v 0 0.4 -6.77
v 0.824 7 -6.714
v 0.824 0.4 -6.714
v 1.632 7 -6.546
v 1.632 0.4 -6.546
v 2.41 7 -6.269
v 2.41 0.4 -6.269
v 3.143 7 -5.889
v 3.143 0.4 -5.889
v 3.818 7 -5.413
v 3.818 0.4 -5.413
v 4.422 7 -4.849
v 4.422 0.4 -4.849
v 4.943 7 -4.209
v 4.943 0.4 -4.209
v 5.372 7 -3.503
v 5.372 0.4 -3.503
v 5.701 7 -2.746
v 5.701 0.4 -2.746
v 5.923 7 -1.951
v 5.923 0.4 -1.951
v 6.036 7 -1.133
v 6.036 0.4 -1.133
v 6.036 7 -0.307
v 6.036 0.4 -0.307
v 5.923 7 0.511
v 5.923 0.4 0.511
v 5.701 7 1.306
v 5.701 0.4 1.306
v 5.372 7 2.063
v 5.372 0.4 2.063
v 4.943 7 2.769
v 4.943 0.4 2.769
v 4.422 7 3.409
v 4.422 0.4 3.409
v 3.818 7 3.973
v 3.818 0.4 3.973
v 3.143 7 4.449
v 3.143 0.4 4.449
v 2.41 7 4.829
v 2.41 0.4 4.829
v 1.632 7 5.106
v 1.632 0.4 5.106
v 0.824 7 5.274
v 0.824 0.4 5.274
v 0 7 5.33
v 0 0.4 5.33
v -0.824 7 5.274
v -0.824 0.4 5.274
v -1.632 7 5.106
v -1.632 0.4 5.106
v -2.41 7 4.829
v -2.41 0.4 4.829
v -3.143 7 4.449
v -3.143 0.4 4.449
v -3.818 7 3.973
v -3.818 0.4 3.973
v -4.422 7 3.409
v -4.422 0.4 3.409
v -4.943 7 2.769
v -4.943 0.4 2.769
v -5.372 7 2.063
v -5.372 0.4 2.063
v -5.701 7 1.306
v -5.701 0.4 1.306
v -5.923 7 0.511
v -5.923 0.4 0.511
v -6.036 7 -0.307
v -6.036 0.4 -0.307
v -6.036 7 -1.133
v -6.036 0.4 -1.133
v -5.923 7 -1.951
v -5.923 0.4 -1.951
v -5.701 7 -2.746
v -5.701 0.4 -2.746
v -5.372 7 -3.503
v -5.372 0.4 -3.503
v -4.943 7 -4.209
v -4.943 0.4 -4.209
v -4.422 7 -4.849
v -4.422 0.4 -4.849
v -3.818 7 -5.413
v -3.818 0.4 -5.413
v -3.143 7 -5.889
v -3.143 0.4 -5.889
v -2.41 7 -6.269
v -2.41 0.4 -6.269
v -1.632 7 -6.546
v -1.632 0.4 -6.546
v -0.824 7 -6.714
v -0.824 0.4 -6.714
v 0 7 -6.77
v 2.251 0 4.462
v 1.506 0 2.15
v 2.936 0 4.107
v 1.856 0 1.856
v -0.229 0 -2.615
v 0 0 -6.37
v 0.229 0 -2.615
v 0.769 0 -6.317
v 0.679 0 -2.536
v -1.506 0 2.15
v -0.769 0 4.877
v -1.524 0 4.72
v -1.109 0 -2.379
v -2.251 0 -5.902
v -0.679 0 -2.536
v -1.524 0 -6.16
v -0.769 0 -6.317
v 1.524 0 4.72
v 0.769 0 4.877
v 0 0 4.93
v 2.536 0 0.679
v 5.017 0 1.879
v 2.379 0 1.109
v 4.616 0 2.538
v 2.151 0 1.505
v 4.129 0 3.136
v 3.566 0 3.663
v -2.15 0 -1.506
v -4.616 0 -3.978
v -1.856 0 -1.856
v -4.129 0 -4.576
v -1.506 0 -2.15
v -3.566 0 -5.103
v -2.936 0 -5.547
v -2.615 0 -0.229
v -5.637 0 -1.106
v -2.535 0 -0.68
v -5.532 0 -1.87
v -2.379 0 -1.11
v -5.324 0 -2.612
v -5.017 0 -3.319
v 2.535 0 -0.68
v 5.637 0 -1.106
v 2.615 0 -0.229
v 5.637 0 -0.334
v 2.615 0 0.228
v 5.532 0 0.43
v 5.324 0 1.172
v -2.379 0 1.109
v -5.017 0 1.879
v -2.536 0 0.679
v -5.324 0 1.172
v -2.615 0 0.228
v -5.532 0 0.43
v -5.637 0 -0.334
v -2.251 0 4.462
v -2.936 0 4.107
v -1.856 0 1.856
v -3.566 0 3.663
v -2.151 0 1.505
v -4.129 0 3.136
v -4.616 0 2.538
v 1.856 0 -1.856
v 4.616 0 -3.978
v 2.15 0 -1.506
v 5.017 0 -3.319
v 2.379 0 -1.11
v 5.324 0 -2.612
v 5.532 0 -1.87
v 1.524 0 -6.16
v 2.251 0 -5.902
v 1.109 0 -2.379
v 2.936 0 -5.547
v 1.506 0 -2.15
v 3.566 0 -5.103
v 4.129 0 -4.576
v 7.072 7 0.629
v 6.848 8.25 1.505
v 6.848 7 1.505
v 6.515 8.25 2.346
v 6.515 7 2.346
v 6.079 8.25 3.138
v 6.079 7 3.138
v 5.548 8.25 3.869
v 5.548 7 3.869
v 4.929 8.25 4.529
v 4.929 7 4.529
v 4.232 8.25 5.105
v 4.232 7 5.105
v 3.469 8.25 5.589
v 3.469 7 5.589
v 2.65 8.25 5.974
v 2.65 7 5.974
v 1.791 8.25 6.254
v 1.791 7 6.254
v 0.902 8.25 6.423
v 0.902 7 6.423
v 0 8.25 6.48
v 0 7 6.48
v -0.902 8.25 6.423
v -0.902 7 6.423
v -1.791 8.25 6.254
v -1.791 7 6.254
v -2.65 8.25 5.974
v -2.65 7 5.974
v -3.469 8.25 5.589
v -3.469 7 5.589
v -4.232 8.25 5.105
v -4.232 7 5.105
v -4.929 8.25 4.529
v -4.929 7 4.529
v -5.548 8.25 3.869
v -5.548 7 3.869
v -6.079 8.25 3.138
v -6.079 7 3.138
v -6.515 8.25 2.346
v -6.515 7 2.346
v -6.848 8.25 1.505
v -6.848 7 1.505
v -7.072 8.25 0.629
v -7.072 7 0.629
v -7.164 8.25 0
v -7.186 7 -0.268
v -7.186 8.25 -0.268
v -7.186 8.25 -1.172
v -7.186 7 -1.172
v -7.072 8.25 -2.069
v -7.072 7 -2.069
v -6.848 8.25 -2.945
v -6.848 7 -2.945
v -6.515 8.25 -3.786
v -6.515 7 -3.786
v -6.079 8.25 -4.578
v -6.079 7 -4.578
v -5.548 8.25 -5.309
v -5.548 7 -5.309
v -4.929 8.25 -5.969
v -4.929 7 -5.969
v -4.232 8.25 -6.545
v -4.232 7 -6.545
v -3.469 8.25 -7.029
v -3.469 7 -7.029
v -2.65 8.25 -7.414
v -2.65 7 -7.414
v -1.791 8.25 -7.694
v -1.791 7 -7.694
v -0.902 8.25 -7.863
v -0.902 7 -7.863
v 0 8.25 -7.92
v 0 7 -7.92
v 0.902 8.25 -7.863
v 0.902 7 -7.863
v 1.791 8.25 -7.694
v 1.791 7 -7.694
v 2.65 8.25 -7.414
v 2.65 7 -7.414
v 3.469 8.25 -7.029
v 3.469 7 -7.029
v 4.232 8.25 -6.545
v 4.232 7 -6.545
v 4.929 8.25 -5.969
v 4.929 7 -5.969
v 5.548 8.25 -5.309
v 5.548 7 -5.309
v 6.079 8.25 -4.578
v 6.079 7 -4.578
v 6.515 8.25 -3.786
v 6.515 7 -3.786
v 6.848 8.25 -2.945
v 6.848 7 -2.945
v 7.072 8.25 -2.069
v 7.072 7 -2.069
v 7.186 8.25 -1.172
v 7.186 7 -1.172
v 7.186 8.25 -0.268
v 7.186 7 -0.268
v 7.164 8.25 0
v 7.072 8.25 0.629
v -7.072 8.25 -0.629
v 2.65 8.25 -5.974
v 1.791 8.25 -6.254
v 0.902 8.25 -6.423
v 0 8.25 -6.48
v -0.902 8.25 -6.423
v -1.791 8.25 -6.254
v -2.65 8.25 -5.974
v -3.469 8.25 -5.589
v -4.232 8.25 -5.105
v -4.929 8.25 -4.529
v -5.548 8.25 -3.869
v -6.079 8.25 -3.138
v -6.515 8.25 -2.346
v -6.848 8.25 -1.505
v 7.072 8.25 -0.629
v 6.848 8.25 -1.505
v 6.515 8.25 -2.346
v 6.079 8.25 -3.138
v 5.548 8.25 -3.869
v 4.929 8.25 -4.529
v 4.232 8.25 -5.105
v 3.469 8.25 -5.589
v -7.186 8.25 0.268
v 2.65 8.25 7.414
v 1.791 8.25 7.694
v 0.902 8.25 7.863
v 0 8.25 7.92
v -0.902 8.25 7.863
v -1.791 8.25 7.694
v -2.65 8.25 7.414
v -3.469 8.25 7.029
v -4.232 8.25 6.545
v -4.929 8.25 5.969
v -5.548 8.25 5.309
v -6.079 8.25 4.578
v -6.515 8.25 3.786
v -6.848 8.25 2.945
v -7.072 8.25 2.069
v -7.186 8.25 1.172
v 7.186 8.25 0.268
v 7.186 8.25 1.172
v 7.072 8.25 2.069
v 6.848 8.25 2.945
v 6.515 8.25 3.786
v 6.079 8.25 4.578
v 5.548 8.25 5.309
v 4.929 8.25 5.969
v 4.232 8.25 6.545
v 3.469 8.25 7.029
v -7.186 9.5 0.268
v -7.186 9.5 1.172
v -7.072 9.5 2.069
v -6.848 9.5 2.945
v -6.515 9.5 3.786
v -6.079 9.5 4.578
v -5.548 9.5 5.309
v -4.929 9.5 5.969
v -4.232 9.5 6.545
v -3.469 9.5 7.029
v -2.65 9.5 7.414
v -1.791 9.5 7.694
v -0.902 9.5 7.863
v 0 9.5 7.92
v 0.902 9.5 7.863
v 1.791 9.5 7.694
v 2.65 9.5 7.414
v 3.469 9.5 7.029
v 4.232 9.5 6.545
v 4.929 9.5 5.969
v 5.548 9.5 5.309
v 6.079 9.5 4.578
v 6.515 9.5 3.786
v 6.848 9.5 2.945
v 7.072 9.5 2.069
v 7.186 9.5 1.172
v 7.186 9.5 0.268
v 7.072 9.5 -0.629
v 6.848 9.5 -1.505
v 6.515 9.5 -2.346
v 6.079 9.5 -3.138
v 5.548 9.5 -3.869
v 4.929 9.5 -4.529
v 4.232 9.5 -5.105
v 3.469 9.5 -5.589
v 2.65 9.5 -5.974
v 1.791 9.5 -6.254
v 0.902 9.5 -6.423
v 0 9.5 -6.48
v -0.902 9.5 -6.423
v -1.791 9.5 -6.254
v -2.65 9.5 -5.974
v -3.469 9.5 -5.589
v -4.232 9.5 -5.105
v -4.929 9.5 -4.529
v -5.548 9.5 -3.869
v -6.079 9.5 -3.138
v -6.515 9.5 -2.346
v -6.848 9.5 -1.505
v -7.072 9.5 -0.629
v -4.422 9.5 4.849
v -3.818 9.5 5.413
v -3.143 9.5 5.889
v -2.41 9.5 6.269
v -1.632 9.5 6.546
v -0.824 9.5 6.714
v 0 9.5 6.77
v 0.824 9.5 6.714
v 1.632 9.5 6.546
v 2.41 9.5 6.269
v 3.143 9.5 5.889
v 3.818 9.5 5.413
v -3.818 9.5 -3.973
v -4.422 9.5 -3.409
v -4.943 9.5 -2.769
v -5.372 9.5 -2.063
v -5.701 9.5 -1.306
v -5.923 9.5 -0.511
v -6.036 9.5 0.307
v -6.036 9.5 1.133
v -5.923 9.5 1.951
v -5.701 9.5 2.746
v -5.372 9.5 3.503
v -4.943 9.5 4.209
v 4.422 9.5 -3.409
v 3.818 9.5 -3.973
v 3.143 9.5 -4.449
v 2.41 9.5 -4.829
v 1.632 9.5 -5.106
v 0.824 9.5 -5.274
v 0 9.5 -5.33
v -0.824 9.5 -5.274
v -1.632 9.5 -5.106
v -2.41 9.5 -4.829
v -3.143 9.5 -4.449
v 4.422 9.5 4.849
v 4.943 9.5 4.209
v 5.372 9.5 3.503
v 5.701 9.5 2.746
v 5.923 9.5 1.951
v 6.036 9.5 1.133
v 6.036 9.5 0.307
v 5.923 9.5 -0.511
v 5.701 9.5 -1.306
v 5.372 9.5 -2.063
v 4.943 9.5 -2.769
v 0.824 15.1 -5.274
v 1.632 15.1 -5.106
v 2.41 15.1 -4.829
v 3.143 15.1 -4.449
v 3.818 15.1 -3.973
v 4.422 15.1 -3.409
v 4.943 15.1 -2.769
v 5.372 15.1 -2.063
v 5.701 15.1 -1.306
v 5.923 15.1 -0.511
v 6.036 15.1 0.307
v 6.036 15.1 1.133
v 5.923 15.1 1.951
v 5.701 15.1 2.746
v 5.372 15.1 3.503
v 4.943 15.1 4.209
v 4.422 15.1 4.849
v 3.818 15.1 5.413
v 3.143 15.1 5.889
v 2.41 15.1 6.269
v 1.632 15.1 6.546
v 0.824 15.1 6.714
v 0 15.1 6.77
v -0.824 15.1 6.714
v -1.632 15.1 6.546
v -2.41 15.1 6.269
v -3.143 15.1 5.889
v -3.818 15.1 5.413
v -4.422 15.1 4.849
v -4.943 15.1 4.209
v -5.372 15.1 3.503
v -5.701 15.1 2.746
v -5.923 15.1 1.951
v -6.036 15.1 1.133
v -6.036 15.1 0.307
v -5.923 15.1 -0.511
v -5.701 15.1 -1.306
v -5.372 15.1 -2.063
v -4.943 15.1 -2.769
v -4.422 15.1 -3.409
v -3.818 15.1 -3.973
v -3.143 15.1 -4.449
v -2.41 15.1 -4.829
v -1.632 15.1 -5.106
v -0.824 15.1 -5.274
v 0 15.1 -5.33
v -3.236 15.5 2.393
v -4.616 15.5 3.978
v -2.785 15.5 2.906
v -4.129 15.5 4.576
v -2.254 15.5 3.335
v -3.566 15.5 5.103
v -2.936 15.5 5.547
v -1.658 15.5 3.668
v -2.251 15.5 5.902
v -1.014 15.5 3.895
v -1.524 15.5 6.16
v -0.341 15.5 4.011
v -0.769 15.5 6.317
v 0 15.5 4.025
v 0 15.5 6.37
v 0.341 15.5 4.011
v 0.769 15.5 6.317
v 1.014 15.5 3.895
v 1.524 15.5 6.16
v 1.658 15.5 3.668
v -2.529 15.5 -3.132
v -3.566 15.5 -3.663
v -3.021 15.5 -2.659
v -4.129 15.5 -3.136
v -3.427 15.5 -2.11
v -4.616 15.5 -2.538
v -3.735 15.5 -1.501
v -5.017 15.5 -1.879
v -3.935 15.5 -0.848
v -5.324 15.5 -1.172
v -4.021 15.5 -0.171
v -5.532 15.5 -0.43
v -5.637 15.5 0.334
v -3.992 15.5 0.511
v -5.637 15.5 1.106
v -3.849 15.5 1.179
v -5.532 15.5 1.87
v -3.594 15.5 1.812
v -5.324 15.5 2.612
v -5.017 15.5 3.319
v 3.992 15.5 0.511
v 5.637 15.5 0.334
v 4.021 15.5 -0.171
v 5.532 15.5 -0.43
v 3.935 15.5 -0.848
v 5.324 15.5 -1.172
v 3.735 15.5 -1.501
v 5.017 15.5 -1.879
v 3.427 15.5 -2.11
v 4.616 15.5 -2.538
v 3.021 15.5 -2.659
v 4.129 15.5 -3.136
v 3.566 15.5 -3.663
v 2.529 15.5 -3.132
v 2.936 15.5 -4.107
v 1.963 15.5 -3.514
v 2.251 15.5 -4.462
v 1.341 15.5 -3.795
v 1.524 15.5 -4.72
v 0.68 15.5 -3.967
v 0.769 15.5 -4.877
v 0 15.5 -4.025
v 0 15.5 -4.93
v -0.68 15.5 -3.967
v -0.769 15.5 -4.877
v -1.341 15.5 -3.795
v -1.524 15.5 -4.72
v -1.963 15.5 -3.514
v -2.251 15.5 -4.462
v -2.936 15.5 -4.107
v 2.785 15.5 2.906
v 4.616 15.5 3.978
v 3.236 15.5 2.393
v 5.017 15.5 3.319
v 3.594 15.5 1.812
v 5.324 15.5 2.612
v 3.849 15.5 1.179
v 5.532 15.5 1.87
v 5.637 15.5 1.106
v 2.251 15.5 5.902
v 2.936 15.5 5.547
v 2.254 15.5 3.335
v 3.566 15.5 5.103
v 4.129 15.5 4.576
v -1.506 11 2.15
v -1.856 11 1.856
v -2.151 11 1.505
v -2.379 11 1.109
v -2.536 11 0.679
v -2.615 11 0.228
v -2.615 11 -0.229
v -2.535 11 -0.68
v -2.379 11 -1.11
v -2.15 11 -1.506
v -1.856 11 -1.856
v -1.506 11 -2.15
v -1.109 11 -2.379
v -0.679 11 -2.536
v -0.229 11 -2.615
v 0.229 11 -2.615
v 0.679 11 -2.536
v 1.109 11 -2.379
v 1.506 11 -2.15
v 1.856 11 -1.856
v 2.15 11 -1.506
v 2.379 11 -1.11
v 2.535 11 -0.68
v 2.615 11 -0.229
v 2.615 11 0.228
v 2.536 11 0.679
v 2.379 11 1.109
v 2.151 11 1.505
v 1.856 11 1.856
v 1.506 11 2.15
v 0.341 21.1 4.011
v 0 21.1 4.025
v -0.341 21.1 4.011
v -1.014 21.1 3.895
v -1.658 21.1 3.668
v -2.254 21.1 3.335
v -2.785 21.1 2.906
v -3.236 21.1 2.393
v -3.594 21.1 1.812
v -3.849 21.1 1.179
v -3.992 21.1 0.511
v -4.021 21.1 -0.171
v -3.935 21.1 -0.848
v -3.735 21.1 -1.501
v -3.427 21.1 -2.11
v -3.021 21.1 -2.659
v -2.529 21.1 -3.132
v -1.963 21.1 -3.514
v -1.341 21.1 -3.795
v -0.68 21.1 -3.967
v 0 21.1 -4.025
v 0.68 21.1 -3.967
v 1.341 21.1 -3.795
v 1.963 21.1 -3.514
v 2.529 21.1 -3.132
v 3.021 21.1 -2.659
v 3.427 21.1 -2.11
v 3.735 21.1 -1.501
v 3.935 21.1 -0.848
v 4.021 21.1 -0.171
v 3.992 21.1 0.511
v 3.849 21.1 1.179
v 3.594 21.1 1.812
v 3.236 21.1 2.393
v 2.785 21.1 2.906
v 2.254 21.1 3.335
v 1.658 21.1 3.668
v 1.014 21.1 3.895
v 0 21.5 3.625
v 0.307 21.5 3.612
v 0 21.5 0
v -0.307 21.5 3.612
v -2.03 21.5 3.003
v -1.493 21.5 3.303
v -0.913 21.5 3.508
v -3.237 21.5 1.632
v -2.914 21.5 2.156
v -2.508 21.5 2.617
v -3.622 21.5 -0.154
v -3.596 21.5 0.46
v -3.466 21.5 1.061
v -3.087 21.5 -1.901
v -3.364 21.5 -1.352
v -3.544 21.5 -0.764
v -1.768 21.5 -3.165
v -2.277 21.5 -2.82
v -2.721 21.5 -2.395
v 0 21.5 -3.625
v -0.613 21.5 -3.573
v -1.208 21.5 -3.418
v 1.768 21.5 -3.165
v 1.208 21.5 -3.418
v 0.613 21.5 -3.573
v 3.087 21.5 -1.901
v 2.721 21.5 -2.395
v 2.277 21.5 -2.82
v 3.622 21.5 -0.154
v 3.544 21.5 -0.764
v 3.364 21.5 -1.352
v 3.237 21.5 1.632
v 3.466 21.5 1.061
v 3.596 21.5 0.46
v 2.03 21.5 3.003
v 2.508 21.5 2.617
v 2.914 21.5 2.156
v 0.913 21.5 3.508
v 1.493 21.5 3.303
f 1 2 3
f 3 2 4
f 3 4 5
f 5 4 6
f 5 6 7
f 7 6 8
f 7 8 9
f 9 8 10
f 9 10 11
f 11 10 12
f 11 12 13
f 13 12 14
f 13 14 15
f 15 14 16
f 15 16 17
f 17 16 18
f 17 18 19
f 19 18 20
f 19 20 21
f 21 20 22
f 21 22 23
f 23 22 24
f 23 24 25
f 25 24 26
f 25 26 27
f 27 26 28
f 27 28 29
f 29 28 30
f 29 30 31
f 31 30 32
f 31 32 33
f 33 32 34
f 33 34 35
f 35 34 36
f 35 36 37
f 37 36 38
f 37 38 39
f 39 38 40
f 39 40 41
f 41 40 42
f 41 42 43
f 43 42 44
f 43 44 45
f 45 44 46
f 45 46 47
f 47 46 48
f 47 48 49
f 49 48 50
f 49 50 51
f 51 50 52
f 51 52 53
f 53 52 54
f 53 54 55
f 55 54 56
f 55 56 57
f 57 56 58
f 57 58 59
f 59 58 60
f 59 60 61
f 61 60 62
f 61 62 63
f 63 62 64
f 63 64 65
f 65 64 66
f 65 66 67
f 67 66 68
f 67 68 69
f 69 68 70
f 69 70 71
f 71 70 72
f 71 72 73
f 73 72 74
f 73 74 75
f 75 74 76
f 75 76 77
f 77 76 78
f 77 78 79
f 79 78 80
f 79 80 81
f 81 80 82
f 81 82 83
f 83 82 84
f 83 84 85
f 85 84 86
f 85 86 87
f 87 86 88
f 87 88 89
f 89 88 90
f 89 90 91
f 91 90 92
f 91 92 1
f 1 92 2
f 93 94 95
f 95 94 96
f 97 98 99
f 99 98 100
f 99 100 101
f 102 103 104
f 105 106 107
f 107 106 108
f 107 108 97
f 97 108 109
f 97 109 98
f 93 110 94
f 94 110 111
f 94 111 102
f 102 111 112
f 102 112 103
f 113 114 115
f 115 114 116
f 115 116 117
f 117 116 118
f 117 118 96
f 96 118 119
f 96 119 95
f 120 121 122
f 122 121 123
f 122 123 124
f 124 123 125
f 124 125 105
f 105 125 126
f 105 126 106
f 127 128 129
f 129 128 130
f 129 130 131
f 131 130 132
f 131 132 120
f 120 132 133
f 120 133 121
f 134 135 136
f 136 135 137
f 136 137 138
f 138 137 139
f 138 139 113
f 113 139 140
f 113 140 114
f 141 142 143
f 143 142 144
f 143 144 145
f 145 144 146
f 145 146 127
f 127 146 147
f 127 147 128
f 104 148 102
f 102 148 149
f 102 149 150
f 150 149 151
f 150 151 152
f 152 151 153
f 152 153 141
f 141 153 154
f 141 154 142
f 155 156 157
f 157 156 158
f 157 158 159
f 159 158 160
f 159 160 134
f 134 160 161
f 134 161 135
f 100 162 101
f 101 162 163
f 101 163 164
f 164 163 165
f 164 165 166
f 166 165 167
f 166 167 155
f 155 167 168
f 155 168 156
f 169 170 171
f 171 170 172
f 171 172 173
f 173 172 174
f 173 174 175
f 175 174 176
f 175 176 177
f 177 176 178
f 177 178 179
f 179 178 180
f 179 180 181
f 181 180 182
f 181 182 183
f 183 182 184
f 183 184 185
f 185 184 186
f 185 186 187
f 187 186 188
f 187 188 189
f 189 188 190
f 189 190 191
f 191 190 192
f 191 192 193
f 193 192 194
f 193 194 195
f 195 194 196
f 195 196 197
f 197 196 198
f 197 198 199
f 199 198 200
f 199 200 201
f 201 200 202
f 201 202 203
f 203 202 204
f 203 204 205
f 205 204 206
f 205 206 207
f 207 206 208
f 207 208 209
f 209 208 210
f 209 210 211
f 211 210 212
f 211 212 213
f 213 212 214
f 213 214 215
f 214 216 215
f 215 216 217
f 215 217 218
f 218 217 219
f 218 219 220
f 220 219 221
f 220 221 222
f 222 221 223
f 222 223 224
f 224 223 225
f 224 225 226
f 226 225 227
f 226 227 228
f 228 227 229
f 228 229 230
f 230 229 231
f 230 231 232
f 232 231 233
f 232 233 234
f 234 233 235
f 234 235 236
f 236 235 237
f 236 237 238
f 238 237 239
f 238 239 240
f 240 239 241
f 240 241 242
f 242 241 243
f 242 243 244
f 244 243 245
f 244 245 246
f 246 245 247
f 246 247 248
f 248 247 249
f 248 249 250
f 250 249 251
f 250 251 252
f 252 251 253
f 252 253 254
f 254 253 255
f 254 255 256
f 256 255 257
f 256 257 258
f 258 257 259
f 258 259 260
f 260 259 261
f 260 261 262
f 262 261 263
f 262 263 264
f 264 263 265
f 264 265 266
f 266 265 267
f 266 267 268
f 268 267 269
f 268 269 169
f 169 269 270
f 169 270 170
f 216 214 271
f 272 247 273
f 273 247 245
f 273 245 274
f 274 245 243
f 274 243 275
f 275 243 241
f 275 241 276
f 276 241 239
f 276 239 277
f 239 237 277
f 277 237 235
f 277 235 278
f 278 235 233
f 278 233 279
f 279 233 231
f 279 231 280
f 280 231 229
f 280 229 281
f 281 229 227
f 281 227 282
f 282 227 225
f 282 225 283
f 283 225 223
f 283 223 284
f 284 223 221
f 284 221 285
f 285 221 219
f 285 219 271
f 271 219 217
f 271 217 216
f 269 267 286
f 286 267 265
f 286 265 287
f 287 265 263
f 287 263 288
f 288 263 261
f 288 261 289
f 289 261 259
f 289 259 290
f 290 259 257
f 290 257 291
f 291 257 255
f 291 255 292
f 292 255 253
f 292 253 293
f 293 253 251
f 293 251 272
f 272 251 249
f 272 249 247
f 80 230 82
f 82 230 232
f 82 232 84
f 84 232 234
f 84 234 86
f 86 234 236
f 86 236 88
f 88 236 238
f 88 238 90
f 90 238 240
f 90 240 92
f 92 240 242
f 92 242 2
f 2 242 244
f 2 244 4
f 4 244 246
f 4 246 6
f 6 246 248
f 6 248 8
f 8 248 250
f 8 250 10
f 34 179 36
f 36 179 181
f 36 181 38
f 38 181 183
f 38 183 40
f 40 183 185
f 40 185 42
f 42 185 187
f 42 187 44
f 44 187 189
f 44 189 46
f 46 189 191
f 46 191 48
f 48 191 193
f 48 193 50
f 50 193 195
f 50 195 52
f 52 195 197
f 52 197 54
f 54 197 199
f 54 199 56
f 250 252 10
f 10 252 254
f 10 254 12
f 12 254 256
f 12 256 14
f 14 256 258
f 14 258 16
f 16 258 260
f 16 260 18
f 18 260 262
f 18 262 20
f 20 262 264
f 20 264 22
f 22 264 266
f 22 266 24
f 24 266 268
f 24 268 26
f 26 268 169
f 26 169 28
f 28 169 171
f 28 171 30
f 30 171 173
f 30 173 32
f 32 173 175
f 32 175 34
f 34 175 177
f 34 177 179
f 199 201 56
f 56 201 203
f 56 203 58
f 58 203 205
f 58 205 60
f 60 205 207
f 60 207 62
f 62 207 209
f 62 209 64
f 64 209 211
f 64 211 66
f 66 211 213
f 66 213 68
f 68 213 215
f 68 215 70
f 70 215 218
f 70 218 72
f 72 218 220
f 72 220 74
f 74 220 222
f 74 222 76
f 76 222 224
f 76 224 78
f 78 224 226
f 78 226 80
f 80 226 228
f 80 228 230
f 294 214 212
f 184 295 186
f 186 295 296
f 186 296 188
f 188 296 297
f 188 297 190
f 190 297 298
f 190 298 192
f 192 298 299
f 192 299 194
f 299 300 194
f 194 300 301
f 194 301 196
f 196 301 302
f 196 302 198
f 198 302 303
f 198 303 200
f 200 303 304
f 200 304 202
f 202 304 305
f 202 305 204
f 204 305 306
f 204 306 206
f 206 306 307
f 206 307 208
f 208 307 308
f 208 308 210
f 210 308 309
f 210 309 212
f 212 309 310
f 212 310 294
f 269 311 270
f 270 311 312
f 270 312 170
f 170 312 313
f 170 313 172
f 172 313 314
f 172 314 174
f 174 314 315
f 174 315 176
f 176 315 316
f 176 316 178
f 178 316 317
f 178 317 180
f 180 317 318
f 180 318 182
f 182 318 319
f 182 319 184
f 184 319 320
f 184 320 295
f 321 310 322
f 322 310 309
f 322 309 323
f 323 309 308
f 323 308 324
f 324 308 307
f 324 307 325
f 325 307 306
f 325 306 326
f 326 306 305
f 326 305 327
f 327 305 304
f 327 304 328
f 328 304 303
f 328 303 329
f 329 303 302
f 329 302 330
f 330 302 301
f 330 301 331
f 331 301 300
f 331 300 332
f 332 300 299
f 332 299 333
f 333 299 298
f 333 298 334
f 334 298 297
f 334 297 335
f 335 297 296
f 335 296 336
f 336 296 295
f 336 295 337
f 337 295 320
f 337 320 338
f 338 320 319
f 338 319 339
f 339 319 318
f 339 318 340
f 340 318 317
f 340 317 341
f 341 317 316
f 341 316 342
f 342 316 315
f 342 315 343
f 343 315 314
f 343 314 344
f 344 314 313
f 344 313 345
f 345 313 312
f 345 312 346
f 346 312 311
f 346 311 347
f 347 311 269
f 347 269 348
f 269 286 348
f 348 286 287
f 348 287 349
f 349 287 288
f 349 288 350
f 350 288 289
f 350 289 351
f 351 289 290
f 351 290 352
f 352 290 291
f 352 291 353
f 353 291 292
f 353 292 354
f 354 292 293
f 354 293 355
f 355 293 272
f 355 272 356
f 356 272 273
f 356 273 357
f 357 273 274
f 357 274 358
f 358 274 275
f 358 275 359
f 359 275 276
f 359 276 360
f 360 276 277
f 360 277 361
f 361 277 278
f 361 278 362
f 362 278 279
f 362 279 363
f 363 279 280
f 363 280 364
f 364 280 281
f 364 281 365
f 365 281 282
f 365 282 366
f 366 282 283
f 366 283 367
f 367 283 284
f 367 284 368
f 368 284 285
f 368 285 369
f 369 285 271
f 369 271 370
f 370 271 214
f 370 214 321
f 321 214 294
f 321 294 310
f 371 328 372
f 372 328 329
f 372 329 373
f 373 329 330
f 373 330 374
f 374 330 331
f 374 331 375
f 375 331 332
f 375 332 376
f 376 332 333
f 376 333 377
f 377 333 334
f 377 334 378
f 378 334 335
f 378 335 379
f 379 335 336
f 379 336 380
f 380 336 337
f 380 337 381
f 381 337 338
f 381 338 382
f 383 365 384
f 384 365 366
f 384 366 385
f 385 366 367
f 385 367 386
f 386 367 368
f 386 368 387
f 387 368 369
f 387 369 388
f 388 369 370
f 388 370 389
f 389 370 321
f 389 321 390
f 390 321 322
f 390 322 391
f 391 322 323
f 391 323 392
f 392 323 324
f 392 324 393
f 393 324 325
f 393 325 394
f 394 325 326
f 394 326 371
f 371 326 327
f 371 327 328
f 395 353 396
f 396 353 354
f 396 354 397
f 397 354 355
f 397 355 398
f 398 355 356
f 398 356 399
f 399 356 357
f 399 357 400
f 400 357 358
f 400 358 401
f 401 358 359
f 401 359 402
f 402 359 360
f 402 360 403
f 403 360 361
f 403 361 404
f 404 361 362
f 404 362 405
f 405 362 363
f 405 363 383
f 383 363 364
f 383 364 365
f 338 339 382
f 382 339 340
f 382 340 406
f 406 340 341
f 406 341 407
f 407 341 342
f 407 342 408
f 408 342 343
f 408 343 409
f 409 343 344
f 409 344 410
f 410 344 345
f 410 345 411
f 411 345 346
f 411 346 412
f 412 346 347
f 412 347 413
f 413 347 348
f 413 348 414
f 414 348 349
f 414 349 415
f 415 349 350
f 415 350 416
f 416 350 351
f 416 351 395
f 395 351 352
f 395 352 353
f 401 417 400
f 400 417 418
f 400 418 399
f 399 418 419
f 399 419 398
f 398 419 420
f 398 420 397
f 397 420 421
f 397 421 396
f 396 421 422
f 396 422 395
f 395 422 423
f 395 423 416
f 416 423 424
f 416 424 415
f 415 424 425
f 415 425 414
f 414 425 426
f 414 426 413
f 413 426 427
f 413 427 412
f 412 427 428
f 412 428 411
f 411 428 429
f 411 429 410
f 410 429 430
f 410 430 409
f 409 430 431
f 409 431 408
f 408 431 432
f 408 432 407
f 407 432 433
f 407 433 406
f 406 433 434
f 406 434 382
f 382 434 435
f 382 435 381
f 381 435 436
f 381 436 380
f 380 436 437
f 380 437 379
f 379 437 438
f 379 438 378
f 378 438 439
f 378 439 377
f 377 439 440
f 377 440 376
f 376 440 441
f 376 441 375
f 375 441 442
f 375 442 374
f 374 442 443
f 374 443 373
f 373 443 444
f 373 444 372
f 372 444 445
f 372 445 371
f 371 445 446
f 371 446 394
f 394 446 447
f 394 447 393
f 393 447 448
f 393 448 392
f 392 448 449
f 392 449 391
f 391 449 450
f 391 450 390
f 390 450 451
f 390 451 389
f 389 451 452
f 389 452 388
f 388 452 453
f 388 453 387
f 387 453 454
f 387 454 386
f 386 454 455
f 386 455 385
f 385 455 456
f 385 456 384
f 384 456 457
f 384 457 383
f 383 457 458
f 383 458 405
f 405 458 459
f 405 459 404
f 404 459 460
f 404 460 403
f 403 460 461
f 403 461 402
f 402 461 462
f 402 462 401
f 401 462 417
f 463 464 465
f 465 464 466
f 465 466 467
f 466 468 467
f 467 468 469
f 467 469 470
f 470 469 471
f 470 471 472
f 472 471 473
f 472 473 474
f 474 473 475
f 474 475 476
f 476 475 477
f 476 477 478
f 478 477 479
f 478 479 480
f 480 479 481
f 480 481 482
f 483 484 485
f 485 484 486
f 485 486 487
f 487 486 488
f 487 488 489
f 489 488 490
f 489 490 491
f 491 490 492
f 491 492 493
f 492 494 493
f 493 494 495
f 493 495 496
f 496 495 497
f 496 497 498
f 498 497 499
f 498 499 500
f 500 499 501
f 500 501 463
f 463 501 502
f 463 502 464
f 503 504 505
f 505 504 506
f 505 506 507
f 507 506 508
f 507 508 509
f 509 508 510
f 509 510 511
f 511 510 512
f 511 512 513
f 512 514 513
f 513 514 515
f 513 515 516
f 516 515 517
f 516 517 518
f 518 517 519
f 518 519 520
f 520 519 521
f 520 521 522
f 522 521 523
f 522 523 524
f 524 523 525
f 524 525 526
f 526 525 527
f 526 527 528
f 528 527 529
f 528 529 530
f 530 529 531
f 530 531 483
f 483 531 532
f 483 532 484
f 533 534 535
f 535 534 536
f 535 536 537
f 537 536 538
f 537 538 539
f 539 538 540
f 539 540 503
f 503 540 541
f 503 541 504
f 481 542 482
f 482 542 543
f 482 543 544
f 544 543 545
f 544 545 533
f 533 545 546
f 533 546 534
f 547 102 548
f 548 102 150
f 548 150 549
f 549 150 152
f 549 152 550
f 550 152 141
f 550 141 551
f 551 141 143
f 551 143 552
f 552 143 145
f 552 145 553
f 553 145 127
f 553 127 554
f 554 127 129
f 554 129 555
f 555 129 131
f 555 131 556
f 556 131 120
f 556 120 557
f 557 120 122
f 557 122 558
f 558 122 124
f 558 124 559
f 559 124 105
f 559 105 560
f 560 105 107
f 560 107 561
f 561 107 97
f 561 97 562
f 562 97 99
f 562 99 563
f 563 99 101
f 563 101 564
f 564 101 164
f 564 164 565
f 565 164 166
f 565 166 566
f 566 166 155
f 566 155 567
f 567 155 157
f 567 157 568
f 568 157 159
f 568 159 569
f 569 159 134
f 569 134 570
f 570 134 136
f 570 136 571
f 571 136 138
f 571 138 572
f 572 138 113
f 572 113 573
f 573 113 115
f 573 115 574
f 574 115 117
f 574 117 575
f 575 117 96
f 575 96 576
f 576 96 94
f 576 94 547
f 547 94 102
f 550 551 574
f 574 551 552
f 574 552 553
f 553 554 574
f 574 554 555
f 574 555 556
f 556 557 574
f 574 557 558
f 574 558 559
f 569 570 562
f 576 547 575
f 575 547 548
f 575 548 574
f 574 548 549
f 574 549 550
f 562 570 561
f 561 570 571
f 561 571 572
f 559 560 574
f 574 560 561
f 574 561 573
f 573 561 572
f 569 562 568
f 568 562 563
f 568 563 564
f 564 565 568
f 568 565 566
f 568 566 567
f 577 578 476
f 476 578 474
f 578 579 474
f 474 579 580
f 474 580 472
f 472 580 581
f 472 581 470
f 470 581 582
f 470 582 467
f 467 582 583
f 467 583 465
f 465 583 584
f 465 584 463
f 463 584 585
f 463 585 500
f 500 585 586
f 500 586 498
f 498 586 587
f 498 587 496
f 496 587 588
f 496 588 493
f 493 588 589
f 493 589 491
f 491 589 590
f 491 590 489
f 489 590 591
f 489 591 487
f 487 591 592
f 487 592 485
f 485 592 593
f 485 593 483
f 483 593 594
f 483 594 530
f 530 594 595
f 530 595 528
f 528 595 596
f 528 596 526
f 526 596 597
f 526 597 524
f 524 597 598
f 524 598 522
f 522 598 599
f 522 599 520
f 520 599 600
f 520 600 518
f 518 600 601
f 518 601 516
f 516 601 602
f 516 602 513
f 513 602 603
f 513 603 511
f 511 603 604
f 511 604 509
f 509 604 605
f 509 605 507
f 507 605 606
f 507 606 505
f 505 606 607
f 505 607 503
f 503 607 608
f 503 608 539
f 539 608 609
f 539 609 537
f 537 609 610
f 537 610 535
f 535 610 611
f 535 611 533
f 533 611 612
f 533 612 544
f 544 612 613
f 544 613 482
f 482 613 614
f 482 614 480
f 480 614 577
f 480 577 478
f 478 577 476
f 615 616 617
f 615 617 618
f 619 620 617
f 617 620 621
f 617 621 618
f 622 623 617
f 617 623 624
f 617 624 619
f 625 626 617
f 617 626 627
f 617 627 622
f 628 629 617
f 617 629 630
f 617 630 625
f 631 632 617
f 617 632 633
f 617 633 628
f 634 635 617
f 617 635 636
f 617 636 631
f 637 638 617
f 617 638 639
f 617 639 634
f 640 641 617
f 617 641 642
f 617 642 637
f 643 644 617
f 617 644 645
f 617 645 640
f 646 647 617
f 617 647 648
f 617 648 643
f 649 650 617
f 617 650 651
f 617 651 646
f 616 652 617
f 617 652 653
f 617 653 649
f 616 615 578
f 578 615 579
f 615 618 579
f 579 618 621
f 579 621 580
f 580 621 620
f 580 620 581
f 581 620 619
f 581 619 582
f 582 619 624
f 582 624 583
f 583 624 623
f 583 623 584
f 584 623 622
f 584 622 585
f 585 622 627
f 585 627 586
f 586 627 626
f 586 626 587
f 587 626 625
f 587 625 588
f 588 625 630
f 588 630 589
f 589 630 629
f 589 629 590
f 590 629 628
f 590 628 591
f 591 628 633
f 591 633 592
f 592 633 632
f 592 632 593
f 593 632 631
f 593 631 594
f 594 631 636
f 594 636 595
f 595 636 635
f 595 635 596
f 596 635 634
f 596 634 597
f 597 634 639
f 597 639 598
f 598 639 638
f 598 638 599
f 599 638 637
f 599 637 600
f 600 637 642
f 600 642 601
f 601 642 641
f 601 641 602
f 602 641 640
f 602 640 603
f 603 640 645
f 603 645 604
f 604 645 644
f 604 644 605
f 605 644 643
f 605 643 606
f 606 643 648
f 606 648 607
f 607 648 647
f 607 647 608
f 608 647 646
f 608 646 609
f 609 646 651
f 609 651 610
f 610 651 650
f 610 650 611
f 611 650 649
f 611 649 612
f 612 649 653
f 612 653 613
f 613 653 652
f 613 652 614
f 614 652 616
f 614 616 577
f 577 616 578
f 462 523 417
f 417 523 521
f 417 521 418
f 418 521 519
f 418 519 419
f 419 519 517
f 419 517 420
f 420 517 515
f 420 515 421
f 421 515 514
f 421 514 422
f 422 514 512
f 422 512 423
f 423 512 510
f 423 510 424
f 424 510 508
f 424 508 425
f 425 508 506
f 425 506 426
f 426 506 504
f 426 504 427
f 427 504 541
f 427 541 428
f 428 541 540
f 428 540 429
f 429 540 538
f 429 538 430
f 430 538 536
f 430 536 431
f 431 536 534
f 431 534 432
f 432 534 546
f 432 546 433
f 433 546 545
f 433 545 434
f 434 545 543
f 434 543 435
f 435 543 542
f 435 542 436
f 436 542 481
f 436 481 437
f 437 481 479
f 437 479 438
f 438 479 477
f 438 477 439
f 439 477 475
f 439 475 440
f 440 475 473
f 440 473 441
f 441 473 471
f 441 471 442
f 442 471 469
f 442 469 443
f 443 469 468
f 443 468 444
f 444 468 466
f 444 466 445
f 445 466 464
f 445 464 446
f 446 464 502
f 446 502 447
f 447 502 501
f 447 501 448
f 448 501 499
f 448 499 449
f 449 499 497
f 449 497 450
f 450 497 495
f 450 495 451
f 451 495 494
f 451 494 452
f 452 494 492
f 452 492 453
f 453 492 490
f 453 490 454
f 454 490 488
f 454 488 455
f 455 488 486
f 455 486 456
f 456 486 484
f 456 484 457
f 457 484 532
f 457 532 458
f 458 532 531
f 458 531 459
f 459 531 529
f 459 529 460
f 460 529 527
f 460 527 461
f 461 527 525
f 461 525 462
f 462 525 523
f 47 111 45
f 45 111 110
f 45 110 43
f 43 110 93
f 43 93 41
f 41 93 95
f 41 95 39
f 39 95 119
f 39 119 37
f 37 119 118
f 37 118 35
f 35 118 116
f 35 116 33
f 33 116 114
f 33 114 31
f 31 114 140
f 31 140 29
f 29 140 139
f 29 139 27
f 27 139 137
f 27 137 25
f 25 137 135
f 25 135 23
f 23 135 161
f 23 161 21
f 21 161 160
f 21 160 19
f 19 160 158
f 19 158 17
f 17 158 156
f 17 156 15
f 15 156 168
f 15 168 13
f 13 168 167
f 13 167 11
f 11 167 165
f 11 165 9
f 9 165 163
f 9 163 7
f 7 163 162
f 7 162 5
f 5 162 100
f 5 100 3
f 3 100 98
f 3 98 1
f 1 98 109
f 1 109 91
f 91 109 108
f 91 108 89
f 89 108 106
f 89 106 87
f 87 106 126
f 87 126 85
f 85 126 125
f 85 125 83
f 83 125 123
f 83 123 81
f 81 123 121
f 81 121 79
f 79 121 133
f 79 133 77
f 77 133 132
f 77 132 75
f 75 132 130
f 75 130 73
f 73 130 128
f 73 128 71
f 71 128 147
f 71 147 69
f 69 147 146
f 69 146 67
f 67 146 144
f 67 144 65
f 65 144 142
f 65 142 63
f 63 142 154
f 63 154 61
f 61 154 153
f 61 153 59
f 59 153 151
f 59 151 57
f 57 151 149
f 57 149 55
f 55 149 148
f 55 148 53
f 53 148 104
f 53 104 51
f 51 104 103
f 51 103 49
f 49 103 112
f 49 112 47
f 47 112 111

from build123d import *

# Parameters (mm, degrees)
SKETCH1_R               = 6.05
BOSS_EXTRUDE1_DEPTH     = 7
SKETCH2_R               = 7.2
BOSS_EXTRUDE2_DEPTH     = 1.25
SKETCH3_R               = 7.2
BOSS_EXTRUDE3_DEPTH     = 1.25
SKETCH4_R               = 6.05
BOSS_EXTRUDE4_DEPTH     = 6
CUT_EXTRUDE2_DEPTH      = 19.836570813
CUT_EXTRUDE2_DEPTH_BACK = 11
SKETCH6_R               = 4.025
BOSS_EXTRUDE5_DEPTH     = 6
CHAMFER1_SIZE           = 0.4
CHAMFER2_SIZE           = 0.4


with BuildPart() as part:
    # Sketch1 → Boss-Extrude1 (new body)
    with BuildSketch(Plane(origin=(0, 0, 0), x_dir=(1, 0, 0), z_dir=(0, 1, 0))):
        with Locations(Location((0, 0.72, 0), (0, 0, 270))):
            Circle(SKETCH1_R)
    extrude(amount=BOSS_EXTRUDE1_DEPTH)

    # Sketch2 → Boss-Extrude2 (add)
    with BuildSketch(Plane(origin=(0, 7, 0), x_dir=(1, 0, 0), z_dir=(0, 1, 0))):
        with Locations(Location((0, 0.72, 0), (0, 0, 270))):
            Circle(SKETCH2_R)
    extrude(amount=BOSS_EXTRUDE2_DEPTH)

    # Sketch3 → Boss-Extrude3 (add)
    with BuildSketch(Plane(origin=(0, 8.25, 0), x_dir=(1, 0, 0), z_dir=(0, 1, 0))):
        with Locations(Location((0, -0.72, 0), (0, 0, 174.260829523))):
            Circle(SKETCH3_R)
    extrude(amount=BOSS_EXTRUDE3_DEPTH)

    # Sketch4 → Boss-Extrude4 (add)
    with BuildSketch(Plane(origin=(0, 9.5, 0), x_dir=(1, 0, 0), z_dir=(0, 1, 0))):
        with Locations(Location((0, -0.72, 0), (0, 0, 270))):
            Circle(SKETCH4_R)
    extrude(amount=BOSS_EXTRUDE4_DEPTH)

    # Sketch5 → Cut-Extrude2 (cut, two sides: drawn at the far end of the back side and taken through both)
    with BuildSketch(Plane.XZ.offset(-CUT_EXTRUDE2_DEPTH_BACK)):
        with BuildLine():
            Line((1.506029548, 2.15), (-1.506029548, 2.15))
            ThreePointArc((-1.506029548, 2.15), (0, -2.625), (1.506029548, 2.15))
        make_face()
    extrude(amount=CUT_EXTRUDE2_DEPTH + CUT_EXTRUDE2_DEPTH_BACK, mode=Mode.SUBTRACT)

    # Sketch6 → Boss-Extrude5 (add)
    with BuildSketch(Plane(origin=(0, 15.5, 0), x_dir=(1, 0, 0), z_dir=(0, 1, 0))):
        with Locations(Location((0, 0, 0), (0, 0, 270))):
            Circle(SKETCH6_R)
    extrude(amount=BOSS_EXTRUDE5_DEPTH)

    # Chamfer1
    chamfer1_edges = [part.edges().sort_by_distance(p)[0] for p in [
        (0, 21.5, -4.025),
    ]]
    chamfer(chamfer1_edges, length=CHAMFER1_SIZE)

    # Chamfer2
    chamfer2_edges = [part.edges().sort_by_distance(p)[0] for p in [
        (0, 15.5, -5.33),
        (0, 0, -6.77),
    ]]
    chamfer(chamfer2_edges, length=CHAMFER2_SIZE)


solid = part.part
